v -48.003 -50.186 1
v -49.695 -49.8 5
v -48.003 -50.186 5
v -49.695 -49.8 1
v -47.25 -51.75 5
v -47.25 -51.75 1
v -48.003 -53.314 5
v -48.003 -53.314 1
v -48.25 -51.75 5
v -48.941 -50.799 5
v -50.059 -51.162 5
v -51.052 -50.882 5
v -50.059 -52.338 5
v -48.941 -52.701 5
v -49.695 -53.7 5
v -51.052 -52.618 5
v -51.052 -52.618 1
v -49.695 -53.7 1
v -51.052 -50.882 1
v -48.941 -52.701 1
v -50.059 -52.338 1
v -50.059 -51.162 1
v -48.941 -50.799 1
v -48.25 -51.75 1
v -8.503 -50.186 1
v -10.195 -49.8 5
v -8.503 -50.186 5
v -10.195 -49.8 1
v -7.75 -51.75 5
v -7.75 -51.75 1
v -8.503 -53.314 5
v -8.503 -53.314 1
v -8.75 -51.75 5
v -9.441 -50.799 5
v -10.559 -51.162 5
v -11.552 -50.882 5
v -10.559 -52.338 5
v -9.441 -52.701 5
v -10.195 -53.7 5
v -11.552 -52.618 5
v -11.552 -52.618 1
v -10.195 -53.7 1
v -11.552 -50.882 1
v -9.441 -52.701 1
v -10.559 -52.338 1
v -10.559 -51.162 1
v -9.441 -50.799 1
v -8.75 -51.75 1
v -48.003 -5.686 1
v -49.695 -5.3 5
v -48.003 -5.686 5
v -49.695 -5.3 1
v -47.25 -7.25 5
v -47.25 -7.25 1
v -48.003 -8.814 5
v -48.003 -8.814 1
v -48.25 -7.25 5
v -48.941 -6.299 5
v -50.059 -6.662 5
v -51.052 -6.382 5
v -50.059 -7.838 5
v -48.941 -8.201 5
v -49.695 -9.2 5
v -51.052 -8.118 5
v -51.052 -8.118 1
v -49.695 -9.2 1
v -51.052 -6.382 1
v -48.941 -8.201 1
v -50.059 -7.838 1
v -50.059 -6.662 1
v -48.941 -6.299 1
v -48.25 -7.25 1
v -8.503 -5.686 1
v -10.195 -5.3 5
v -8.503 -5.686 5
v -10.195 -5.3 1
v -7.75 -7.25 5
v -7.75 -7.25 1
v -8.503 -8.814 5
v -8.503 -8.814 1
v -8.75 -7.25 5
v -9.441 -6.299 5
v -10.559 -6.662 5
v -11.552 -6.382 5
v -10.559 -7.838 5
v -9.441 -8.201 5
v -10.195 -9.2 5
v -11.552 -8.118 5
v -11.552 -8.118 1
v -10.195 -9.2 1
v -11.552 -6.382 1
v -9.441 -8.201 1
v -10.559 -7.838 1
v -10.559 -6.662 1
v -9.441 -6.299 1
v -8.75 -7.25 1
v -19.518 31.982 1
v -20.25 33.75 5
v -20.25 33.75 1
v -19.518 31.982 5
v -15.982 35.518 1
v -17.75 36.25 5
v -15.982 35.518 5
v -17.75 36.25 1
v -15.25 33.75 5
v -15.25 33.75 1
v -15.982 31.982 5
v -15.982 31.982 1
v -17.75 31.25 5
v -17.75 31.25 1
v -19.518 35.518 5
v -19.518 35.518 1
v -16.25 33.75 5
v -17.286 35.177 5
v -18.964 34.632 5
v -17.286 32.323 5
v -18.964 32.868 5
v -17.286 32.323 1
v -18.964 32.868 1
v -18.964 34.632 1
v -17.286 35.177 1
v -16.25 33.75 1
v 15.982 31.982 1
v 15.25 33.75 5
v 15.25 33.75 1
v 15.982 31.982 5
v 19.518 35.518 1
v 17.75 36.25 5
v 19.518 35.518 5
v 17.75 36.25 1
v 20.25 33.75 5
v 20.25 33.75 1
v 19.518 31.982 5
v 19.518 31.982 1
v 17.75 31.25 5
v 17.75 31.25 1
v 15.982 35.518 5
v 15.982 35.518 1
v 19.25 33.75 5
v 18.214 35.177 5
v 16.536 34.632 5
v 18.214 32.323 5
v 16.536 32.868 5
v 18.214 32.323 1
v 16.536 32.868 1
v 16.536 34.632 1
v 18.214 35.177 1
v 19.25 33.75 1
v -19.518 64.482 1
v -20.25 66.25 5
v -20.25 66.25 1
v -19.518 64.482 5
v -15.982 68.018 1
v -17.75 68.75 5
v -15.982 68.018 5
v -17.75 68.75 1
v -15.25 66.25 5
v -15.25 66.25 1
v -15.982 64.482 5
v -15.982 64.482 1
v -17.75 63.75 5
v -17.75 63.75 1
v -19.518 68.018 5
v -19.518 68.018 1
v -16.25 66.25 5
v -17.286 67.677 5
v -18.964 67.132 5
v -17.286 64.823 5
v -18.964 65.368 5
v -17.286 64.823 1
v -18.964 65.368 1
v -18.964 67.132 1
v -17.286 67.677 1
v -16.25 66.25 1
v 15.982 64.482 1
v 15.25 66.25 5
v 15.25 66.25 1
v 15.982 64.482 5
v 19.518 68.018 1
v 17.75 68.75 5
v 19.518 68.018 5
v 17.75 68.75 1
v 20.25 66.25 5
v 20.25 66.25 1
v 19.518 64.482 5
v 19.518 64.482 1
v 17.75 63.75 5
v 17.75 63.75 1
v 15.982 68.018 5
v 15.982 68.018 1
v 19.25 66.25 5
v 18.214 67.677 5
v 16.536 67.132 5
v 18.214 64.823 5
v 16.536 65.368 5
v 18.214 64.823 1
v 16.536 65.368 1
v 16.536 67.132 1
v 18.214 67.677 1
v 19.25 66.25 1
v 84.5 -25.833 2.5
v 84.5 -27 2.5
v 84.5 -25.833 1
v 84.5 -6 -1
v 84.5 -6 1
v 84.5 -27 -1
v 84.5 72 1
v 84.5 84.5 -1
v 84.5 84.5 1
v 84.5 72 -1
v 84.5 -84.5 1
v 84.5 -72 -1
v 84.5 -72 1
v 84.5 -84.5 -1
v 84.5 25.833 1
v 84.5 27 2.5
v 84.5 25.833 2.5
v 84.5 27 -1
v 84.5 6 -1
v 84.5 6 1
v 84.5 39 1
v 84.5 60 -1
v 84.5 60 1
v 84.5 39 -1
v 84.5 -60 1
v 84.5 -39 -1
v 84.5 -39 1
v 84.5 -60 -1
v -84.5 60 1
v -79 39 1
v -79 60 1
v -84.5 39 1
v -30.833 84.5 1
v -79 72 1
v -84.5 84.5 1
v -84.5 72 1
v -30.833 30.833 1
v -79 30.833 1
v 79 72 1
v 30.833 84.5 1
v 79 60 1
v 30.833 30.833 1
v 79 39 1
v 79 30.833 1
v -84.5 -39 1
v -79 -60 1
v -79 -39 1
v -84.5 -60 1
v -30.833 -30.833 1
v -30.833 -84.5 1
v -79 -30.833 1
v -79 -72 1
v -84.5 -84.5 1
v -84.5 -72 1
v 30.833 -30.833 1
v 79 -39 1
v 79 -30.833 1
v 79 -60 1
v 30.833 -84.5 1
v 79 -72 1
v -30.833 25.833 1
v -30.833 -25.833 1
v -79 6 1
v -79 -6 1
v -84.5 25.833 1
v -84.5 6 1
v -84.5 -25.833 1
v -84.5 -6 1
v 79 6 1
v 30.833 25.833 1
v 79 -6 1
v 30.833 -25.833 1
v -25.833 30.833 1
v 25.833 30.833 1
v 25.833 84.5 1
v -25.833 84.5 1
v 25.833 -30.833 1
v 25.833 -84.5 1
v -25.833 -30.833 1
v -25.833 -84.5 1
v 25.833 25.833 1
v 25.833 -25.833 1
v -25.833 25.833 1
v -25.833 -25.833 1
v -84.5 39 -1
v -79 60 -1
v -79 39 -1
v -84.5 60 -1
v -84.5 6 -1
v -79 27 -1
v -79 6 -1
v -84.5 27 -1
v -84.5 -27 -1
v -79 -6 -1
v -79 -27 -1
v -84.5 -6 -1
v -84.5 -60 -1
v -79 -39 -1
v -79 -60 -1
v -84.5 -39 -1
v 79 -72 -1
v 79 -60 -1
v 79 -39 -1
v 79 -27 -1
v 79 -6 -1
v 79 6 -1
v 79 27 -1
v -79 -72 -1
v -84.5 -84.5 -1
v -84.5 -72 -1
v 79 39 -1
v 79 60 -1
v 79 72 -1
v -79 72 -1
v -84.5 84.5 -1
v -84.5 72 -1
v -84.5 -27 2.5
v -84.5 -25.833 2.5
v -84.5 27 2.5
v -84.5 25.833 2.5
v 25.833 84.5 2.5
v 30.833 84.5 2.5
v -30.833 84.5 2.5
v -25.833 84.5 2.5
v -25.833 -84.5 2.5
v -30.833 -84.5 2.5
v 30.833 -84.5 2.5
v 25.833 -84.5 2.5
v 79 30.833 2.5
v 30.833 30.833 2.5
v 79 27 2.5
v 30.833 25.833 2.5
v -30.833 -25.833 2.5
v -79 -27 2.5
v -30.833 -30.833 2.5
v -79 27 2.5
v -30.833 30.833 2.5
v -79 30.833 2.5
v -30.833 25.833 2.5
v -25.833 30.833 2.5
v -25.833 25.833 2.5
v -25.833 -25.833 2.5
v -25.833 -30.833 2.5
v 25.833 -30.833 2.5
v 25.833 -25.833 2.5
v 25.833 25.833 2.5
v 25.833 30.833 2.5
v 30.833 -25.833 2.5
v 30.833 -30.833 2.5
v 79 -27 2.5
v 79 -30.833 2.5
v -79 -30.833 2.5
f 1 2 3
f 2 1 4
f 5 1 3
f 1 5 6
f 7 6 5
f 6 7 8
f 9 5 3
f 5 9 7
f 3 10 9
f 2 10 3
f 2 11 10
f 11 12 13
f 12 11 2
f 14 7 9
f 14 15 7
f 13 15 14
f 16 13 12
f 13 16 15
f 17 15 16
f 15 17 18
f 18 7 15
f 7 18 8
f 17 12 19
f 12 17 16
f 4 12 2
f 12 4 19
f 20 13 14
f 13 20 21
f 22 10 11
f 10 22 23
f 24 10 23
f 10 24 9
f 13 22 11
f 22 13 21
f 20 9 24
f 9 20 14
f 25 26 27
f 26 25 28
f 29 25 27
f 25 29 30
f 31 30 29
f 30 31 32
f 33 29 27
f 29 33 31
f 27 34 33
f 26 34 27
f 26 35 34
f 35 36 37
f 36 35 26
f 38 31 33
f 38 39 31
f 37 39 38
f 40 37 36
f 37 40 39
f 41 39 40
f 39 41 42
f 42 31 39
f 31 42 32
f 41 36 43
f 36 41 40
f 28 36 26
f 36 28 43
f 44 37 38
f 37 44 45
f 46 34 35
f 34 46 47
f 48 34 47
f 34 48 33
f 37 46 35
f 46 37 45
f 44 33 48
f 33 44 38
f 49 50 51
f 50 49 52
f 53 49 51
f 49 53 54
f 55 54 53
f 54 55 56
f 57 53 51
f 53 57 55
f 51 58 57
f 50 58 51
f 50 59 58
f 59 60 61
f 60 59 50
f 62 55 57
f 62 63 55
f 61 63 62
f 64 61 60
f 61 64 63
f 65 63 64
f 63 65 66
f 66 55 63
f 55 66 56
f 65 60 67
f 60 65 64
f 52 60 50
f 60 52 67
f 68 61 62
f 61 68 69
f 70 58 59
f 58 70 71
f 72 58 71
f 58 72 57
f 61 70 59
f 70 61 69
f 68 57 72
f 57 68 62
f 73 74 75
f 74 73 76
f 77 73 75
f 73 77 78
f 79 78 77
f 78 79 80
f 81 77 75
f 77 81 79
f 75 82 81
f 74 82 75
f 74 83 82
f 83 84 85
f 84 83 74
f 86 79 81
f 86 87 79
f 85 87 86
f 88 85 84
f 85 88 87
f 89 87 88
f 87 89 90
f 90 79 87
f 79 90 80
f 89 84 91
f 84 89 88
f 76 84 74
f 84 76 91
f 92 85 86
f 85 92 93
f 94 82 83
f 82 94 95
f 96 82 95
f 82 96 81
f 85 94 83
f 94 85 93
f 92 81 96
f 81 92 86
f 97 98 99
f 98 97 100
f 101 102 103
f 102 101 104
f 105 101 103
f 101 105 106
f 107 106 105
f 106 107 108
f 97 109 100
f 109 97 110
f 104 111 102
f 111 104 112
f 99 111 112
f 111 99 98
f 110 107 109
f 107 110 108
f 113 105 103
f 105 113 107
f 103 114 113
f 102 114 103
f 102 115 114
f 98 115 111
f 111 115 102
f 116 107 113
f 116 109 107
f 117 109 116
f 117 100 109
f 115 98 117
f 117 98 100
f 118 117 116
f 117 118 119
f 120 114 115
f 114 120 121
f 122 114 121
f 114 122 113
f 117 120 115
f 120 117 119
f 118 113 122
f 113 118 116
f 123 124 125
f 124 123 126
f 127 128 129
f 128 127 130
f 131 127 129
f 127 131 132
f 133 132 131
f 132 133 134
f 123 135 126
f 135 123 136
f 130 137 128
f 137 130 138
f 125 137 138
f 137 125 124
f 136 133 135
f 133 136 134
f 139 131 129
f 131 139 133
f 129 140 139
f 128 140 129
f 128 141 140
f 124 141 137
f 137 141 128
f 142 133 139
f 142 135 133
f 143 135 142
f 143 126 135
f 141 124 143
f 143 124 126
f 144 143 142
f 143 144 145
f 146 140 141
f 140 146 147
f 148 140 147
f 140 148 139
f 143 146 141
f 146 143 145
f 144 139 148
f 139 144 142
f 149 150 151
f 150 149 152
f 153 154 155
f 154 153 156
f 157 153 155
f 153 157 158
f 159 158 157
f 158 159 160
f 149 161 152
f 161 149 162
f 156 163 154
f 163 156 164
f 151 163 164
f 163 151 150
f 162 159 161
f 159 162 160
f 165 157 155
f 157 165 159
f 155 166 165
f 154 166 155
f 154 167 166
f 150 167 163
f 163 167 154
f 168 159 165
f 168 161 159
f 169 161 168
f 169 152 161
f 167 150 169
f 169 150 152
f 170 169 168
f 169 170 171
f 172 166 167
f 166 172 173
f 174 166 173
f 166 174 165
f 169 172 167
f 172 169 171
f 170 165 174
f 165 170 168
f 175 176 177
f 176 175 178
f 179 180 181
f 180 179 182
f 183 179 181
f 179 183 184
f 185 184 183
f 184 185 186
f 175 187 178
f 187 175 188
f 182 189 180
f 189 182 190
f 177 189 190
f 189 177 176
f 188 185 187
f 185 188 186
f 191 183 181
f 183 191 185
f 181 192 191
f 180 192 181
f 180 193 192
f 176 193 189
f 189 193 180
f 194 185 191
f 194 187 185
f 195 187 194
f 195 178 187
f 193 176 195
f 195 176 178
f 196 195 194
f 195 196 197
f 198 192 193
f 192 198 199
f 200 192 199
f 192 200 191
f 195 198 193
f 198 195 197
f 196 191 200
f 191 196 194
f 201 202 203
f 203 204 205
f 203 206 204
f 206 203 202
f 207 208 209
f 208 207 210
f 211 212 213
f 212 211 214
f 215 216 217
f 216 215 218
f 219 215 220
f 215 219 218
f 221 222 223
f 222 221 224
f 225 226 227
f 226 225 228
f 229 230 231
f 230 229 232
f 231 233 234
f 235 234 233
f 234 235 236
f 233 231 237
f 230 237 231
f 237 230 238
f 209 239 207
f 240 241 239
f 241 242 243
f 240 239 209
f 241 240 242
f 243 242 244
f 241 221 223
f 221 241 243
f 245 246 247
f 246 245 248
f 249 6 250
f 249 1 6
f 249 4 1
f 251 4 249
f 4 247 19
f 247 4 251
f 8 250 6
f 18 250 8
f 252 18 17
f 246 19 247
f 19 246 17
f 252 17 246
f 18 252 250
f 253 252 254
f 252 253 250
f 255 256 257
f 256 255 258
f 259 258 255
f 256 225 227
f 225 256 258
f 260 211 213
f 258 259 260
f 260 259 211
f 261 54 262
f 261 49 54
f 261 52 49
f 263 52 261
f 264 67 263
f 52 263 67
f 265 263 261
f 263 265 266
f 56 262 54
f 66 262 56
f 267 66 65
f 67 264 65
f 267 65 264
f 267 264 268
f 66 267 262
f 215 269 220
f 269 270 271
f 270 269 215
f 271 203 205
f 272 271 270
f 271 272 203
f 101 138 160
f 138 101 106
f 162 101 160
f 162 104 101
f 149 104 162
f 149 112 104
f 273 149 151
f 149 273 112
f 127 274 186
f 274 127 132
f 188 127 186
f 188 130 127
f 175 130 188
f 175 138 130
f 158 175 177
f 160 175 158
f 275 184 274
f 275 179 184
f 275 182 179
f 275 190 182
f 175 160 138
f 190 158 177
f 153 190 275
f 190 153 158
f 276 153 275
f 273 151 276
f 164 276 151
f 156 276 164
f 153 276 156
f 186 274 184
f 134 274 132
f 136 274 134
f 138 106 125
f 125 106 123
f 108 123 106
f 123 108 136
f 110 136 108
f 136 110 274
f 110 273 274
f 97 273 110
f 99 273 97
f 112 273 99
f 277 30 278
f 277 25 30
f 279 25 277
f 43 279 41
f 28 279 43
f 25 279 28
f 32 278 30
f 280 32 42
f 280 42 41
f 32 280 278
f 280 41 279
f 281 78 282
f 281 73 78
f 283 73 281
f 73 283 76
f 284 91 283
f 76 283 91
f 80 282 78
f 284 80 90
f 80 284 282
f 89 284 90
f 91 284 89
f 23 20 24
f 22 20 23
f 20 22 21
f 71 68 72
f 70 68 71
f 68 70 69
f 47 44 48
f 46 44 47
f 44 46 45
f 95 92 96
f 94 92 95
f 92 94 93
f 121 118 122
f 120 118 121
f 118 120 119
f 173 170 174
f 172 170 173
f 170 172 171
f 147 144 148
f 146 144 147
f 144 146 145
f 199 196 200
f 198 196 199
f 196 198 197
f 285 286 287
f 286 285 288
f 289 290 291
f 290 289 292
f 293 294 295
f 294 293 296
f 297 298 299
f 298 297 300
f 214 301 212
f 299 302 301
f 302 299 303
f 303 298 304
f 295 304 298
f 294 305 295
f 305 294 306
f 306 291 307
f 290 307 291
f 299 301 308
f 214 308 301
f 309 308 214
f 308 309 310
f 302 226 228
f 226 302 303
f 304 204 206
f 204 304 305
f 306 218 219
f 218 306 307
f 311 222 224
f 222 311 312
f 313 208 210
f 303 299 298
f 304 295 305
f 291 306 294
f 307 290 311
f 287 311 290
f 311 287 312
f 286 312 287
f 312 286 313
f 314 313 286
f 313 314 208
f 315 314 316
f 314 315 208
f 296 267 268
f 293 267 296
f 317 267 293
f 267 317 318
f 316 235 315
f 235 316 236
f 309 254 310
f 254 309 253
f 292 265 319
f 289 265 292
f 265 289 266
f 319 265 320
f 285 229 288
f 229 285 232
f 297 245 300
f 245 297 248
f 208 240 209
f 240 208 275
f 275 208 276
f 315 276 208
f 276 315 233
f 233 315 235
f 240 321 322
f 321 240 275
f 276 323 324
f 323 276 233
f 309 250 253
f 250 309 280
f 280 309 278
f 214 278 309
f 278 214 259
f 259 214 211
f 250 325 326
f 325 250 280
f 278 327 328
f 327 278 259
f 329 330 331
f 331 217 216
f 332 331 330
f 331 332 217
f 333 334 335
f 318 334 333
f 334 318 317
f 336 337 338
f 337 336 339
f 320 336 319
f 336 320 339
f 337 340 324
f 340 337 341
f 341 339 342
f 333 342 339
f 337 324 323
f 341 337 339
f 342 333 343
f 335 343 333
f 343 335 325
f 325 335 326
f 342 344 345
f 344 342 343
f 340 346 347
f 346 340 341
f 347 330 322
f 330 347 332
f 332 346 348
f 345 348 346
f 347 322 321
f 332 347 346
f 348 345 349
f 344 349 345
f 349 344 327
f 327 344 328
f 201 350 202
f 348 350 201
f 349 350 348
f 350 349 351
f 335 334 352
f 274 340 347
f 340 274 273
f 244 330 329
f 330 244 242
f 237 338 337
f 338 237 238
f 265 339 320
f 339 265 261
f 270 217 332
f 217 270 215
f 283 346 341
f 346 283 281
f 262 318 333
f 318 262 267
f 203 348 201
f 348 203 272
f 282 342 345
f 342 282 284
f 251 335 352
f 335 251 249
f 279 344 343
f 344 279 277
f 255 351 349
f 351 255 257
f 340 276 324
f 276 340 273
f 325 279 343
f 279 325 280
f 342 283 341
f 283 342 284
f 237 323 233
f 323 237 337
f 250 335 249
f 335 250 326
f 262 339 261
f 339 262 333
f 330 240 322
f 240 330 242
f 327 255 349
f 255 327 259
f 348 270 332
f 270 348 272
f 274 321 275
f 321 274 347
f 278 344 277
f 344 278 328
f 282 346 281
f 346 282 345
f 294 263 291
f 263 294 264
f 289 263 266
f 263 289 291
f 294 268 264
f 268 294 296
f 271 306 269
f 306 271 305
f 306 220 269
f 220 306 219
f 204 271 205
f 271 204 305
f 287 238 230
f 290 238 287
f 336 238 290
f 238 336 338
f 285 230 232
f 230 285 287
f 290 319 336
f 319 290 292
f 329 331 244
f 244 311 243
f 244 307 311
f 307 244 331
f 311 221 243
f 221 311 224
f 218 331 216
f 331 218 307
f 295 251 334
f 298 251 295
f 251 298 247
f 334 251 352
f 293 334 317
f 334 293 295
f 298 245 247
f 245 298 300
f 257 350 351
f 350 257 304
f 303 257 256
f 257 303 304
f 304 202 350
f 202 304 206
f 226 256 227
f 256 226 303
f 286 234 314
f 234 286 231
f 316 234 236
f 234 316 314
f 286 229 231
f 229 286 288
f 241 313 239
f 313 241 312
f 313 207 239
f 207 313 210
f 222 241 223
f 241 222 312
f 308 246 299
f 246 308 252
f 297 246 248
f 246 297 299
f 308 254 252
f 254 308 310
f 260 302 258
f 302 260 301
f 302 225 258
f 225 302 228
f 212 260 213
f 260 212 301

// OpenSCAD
difference() {
    union() {
        translate([-30,-30,0]) board_supports();
        translate([0,50,0]) oled_supports();
        cube([170-1, 170-1, 2], center=true);
        translate([0,170/6,1]) cube([170-1, 5, 3], center=true);
        translate([0,-170/6,1]) cube([170-1, 5, 3], center=true);
        translate([-170/6,0,1]) cube([5,170-1, 3], center=true);
        translate([+170/6,0,1]) cube([5,170-1, 3], center=true);
    }
    translate([-170/2,0,-1]) cube([12,12,15], center=true);
    translate([170/2,0,-1]) cube([12,12,15], center=true);
    translate([-170/2,33,-1]) cube([12,12,15], center=true);
    translate([170/2,33,-1]) cube([12,12,15], center=true);
    translate([-170/2,-33,-1]) cube([12,12,15], center=true);
    translate([170/2,-33,-1]) cube([12,12,15], center=true);    
    translate([-170/2,33*2,-1]) cube([12,12,15], center=true);
    translate([170/2,33*2,-1]) cube([12,12,15], center=true);
    translate([-170/2,-33*2,-1]) cube([12,12,15], center=true);
    translate([170/2,-33*2,-1]) cube([12,12,15], center=true);
}

module oled_supports() {
    translate([-(38.5-3)/2,-(35.5-3)/2]) {
        support(3, 5);
        translate([38.5-3,0,0]) support(3, 5);
        translate([0,35.5-3,0]) support(3, 5);
        translate([38.5-3,35.5-3,0]) support(3, 5);
    }
}

module board_supports() {
    translate([-(41.5-3)/2,-(46.5-3)/2]) {
        support(2, 5);
        translate([41.5-2,0,0]) support(2, 5);
        translate([0,46.5-2,0]) support(2, 5);
        translate([41.5-2,46.5-2,0]) support(2, 5);
    }
}

module support(in, h) {
    translate([0,0,h/2]) difference() {
        cylinder(h, in/2+1,in/2+1, center=true);
        translate([0,0,-1]) cylinder(h+2, in/2, in/2, center=true);
    }
}
